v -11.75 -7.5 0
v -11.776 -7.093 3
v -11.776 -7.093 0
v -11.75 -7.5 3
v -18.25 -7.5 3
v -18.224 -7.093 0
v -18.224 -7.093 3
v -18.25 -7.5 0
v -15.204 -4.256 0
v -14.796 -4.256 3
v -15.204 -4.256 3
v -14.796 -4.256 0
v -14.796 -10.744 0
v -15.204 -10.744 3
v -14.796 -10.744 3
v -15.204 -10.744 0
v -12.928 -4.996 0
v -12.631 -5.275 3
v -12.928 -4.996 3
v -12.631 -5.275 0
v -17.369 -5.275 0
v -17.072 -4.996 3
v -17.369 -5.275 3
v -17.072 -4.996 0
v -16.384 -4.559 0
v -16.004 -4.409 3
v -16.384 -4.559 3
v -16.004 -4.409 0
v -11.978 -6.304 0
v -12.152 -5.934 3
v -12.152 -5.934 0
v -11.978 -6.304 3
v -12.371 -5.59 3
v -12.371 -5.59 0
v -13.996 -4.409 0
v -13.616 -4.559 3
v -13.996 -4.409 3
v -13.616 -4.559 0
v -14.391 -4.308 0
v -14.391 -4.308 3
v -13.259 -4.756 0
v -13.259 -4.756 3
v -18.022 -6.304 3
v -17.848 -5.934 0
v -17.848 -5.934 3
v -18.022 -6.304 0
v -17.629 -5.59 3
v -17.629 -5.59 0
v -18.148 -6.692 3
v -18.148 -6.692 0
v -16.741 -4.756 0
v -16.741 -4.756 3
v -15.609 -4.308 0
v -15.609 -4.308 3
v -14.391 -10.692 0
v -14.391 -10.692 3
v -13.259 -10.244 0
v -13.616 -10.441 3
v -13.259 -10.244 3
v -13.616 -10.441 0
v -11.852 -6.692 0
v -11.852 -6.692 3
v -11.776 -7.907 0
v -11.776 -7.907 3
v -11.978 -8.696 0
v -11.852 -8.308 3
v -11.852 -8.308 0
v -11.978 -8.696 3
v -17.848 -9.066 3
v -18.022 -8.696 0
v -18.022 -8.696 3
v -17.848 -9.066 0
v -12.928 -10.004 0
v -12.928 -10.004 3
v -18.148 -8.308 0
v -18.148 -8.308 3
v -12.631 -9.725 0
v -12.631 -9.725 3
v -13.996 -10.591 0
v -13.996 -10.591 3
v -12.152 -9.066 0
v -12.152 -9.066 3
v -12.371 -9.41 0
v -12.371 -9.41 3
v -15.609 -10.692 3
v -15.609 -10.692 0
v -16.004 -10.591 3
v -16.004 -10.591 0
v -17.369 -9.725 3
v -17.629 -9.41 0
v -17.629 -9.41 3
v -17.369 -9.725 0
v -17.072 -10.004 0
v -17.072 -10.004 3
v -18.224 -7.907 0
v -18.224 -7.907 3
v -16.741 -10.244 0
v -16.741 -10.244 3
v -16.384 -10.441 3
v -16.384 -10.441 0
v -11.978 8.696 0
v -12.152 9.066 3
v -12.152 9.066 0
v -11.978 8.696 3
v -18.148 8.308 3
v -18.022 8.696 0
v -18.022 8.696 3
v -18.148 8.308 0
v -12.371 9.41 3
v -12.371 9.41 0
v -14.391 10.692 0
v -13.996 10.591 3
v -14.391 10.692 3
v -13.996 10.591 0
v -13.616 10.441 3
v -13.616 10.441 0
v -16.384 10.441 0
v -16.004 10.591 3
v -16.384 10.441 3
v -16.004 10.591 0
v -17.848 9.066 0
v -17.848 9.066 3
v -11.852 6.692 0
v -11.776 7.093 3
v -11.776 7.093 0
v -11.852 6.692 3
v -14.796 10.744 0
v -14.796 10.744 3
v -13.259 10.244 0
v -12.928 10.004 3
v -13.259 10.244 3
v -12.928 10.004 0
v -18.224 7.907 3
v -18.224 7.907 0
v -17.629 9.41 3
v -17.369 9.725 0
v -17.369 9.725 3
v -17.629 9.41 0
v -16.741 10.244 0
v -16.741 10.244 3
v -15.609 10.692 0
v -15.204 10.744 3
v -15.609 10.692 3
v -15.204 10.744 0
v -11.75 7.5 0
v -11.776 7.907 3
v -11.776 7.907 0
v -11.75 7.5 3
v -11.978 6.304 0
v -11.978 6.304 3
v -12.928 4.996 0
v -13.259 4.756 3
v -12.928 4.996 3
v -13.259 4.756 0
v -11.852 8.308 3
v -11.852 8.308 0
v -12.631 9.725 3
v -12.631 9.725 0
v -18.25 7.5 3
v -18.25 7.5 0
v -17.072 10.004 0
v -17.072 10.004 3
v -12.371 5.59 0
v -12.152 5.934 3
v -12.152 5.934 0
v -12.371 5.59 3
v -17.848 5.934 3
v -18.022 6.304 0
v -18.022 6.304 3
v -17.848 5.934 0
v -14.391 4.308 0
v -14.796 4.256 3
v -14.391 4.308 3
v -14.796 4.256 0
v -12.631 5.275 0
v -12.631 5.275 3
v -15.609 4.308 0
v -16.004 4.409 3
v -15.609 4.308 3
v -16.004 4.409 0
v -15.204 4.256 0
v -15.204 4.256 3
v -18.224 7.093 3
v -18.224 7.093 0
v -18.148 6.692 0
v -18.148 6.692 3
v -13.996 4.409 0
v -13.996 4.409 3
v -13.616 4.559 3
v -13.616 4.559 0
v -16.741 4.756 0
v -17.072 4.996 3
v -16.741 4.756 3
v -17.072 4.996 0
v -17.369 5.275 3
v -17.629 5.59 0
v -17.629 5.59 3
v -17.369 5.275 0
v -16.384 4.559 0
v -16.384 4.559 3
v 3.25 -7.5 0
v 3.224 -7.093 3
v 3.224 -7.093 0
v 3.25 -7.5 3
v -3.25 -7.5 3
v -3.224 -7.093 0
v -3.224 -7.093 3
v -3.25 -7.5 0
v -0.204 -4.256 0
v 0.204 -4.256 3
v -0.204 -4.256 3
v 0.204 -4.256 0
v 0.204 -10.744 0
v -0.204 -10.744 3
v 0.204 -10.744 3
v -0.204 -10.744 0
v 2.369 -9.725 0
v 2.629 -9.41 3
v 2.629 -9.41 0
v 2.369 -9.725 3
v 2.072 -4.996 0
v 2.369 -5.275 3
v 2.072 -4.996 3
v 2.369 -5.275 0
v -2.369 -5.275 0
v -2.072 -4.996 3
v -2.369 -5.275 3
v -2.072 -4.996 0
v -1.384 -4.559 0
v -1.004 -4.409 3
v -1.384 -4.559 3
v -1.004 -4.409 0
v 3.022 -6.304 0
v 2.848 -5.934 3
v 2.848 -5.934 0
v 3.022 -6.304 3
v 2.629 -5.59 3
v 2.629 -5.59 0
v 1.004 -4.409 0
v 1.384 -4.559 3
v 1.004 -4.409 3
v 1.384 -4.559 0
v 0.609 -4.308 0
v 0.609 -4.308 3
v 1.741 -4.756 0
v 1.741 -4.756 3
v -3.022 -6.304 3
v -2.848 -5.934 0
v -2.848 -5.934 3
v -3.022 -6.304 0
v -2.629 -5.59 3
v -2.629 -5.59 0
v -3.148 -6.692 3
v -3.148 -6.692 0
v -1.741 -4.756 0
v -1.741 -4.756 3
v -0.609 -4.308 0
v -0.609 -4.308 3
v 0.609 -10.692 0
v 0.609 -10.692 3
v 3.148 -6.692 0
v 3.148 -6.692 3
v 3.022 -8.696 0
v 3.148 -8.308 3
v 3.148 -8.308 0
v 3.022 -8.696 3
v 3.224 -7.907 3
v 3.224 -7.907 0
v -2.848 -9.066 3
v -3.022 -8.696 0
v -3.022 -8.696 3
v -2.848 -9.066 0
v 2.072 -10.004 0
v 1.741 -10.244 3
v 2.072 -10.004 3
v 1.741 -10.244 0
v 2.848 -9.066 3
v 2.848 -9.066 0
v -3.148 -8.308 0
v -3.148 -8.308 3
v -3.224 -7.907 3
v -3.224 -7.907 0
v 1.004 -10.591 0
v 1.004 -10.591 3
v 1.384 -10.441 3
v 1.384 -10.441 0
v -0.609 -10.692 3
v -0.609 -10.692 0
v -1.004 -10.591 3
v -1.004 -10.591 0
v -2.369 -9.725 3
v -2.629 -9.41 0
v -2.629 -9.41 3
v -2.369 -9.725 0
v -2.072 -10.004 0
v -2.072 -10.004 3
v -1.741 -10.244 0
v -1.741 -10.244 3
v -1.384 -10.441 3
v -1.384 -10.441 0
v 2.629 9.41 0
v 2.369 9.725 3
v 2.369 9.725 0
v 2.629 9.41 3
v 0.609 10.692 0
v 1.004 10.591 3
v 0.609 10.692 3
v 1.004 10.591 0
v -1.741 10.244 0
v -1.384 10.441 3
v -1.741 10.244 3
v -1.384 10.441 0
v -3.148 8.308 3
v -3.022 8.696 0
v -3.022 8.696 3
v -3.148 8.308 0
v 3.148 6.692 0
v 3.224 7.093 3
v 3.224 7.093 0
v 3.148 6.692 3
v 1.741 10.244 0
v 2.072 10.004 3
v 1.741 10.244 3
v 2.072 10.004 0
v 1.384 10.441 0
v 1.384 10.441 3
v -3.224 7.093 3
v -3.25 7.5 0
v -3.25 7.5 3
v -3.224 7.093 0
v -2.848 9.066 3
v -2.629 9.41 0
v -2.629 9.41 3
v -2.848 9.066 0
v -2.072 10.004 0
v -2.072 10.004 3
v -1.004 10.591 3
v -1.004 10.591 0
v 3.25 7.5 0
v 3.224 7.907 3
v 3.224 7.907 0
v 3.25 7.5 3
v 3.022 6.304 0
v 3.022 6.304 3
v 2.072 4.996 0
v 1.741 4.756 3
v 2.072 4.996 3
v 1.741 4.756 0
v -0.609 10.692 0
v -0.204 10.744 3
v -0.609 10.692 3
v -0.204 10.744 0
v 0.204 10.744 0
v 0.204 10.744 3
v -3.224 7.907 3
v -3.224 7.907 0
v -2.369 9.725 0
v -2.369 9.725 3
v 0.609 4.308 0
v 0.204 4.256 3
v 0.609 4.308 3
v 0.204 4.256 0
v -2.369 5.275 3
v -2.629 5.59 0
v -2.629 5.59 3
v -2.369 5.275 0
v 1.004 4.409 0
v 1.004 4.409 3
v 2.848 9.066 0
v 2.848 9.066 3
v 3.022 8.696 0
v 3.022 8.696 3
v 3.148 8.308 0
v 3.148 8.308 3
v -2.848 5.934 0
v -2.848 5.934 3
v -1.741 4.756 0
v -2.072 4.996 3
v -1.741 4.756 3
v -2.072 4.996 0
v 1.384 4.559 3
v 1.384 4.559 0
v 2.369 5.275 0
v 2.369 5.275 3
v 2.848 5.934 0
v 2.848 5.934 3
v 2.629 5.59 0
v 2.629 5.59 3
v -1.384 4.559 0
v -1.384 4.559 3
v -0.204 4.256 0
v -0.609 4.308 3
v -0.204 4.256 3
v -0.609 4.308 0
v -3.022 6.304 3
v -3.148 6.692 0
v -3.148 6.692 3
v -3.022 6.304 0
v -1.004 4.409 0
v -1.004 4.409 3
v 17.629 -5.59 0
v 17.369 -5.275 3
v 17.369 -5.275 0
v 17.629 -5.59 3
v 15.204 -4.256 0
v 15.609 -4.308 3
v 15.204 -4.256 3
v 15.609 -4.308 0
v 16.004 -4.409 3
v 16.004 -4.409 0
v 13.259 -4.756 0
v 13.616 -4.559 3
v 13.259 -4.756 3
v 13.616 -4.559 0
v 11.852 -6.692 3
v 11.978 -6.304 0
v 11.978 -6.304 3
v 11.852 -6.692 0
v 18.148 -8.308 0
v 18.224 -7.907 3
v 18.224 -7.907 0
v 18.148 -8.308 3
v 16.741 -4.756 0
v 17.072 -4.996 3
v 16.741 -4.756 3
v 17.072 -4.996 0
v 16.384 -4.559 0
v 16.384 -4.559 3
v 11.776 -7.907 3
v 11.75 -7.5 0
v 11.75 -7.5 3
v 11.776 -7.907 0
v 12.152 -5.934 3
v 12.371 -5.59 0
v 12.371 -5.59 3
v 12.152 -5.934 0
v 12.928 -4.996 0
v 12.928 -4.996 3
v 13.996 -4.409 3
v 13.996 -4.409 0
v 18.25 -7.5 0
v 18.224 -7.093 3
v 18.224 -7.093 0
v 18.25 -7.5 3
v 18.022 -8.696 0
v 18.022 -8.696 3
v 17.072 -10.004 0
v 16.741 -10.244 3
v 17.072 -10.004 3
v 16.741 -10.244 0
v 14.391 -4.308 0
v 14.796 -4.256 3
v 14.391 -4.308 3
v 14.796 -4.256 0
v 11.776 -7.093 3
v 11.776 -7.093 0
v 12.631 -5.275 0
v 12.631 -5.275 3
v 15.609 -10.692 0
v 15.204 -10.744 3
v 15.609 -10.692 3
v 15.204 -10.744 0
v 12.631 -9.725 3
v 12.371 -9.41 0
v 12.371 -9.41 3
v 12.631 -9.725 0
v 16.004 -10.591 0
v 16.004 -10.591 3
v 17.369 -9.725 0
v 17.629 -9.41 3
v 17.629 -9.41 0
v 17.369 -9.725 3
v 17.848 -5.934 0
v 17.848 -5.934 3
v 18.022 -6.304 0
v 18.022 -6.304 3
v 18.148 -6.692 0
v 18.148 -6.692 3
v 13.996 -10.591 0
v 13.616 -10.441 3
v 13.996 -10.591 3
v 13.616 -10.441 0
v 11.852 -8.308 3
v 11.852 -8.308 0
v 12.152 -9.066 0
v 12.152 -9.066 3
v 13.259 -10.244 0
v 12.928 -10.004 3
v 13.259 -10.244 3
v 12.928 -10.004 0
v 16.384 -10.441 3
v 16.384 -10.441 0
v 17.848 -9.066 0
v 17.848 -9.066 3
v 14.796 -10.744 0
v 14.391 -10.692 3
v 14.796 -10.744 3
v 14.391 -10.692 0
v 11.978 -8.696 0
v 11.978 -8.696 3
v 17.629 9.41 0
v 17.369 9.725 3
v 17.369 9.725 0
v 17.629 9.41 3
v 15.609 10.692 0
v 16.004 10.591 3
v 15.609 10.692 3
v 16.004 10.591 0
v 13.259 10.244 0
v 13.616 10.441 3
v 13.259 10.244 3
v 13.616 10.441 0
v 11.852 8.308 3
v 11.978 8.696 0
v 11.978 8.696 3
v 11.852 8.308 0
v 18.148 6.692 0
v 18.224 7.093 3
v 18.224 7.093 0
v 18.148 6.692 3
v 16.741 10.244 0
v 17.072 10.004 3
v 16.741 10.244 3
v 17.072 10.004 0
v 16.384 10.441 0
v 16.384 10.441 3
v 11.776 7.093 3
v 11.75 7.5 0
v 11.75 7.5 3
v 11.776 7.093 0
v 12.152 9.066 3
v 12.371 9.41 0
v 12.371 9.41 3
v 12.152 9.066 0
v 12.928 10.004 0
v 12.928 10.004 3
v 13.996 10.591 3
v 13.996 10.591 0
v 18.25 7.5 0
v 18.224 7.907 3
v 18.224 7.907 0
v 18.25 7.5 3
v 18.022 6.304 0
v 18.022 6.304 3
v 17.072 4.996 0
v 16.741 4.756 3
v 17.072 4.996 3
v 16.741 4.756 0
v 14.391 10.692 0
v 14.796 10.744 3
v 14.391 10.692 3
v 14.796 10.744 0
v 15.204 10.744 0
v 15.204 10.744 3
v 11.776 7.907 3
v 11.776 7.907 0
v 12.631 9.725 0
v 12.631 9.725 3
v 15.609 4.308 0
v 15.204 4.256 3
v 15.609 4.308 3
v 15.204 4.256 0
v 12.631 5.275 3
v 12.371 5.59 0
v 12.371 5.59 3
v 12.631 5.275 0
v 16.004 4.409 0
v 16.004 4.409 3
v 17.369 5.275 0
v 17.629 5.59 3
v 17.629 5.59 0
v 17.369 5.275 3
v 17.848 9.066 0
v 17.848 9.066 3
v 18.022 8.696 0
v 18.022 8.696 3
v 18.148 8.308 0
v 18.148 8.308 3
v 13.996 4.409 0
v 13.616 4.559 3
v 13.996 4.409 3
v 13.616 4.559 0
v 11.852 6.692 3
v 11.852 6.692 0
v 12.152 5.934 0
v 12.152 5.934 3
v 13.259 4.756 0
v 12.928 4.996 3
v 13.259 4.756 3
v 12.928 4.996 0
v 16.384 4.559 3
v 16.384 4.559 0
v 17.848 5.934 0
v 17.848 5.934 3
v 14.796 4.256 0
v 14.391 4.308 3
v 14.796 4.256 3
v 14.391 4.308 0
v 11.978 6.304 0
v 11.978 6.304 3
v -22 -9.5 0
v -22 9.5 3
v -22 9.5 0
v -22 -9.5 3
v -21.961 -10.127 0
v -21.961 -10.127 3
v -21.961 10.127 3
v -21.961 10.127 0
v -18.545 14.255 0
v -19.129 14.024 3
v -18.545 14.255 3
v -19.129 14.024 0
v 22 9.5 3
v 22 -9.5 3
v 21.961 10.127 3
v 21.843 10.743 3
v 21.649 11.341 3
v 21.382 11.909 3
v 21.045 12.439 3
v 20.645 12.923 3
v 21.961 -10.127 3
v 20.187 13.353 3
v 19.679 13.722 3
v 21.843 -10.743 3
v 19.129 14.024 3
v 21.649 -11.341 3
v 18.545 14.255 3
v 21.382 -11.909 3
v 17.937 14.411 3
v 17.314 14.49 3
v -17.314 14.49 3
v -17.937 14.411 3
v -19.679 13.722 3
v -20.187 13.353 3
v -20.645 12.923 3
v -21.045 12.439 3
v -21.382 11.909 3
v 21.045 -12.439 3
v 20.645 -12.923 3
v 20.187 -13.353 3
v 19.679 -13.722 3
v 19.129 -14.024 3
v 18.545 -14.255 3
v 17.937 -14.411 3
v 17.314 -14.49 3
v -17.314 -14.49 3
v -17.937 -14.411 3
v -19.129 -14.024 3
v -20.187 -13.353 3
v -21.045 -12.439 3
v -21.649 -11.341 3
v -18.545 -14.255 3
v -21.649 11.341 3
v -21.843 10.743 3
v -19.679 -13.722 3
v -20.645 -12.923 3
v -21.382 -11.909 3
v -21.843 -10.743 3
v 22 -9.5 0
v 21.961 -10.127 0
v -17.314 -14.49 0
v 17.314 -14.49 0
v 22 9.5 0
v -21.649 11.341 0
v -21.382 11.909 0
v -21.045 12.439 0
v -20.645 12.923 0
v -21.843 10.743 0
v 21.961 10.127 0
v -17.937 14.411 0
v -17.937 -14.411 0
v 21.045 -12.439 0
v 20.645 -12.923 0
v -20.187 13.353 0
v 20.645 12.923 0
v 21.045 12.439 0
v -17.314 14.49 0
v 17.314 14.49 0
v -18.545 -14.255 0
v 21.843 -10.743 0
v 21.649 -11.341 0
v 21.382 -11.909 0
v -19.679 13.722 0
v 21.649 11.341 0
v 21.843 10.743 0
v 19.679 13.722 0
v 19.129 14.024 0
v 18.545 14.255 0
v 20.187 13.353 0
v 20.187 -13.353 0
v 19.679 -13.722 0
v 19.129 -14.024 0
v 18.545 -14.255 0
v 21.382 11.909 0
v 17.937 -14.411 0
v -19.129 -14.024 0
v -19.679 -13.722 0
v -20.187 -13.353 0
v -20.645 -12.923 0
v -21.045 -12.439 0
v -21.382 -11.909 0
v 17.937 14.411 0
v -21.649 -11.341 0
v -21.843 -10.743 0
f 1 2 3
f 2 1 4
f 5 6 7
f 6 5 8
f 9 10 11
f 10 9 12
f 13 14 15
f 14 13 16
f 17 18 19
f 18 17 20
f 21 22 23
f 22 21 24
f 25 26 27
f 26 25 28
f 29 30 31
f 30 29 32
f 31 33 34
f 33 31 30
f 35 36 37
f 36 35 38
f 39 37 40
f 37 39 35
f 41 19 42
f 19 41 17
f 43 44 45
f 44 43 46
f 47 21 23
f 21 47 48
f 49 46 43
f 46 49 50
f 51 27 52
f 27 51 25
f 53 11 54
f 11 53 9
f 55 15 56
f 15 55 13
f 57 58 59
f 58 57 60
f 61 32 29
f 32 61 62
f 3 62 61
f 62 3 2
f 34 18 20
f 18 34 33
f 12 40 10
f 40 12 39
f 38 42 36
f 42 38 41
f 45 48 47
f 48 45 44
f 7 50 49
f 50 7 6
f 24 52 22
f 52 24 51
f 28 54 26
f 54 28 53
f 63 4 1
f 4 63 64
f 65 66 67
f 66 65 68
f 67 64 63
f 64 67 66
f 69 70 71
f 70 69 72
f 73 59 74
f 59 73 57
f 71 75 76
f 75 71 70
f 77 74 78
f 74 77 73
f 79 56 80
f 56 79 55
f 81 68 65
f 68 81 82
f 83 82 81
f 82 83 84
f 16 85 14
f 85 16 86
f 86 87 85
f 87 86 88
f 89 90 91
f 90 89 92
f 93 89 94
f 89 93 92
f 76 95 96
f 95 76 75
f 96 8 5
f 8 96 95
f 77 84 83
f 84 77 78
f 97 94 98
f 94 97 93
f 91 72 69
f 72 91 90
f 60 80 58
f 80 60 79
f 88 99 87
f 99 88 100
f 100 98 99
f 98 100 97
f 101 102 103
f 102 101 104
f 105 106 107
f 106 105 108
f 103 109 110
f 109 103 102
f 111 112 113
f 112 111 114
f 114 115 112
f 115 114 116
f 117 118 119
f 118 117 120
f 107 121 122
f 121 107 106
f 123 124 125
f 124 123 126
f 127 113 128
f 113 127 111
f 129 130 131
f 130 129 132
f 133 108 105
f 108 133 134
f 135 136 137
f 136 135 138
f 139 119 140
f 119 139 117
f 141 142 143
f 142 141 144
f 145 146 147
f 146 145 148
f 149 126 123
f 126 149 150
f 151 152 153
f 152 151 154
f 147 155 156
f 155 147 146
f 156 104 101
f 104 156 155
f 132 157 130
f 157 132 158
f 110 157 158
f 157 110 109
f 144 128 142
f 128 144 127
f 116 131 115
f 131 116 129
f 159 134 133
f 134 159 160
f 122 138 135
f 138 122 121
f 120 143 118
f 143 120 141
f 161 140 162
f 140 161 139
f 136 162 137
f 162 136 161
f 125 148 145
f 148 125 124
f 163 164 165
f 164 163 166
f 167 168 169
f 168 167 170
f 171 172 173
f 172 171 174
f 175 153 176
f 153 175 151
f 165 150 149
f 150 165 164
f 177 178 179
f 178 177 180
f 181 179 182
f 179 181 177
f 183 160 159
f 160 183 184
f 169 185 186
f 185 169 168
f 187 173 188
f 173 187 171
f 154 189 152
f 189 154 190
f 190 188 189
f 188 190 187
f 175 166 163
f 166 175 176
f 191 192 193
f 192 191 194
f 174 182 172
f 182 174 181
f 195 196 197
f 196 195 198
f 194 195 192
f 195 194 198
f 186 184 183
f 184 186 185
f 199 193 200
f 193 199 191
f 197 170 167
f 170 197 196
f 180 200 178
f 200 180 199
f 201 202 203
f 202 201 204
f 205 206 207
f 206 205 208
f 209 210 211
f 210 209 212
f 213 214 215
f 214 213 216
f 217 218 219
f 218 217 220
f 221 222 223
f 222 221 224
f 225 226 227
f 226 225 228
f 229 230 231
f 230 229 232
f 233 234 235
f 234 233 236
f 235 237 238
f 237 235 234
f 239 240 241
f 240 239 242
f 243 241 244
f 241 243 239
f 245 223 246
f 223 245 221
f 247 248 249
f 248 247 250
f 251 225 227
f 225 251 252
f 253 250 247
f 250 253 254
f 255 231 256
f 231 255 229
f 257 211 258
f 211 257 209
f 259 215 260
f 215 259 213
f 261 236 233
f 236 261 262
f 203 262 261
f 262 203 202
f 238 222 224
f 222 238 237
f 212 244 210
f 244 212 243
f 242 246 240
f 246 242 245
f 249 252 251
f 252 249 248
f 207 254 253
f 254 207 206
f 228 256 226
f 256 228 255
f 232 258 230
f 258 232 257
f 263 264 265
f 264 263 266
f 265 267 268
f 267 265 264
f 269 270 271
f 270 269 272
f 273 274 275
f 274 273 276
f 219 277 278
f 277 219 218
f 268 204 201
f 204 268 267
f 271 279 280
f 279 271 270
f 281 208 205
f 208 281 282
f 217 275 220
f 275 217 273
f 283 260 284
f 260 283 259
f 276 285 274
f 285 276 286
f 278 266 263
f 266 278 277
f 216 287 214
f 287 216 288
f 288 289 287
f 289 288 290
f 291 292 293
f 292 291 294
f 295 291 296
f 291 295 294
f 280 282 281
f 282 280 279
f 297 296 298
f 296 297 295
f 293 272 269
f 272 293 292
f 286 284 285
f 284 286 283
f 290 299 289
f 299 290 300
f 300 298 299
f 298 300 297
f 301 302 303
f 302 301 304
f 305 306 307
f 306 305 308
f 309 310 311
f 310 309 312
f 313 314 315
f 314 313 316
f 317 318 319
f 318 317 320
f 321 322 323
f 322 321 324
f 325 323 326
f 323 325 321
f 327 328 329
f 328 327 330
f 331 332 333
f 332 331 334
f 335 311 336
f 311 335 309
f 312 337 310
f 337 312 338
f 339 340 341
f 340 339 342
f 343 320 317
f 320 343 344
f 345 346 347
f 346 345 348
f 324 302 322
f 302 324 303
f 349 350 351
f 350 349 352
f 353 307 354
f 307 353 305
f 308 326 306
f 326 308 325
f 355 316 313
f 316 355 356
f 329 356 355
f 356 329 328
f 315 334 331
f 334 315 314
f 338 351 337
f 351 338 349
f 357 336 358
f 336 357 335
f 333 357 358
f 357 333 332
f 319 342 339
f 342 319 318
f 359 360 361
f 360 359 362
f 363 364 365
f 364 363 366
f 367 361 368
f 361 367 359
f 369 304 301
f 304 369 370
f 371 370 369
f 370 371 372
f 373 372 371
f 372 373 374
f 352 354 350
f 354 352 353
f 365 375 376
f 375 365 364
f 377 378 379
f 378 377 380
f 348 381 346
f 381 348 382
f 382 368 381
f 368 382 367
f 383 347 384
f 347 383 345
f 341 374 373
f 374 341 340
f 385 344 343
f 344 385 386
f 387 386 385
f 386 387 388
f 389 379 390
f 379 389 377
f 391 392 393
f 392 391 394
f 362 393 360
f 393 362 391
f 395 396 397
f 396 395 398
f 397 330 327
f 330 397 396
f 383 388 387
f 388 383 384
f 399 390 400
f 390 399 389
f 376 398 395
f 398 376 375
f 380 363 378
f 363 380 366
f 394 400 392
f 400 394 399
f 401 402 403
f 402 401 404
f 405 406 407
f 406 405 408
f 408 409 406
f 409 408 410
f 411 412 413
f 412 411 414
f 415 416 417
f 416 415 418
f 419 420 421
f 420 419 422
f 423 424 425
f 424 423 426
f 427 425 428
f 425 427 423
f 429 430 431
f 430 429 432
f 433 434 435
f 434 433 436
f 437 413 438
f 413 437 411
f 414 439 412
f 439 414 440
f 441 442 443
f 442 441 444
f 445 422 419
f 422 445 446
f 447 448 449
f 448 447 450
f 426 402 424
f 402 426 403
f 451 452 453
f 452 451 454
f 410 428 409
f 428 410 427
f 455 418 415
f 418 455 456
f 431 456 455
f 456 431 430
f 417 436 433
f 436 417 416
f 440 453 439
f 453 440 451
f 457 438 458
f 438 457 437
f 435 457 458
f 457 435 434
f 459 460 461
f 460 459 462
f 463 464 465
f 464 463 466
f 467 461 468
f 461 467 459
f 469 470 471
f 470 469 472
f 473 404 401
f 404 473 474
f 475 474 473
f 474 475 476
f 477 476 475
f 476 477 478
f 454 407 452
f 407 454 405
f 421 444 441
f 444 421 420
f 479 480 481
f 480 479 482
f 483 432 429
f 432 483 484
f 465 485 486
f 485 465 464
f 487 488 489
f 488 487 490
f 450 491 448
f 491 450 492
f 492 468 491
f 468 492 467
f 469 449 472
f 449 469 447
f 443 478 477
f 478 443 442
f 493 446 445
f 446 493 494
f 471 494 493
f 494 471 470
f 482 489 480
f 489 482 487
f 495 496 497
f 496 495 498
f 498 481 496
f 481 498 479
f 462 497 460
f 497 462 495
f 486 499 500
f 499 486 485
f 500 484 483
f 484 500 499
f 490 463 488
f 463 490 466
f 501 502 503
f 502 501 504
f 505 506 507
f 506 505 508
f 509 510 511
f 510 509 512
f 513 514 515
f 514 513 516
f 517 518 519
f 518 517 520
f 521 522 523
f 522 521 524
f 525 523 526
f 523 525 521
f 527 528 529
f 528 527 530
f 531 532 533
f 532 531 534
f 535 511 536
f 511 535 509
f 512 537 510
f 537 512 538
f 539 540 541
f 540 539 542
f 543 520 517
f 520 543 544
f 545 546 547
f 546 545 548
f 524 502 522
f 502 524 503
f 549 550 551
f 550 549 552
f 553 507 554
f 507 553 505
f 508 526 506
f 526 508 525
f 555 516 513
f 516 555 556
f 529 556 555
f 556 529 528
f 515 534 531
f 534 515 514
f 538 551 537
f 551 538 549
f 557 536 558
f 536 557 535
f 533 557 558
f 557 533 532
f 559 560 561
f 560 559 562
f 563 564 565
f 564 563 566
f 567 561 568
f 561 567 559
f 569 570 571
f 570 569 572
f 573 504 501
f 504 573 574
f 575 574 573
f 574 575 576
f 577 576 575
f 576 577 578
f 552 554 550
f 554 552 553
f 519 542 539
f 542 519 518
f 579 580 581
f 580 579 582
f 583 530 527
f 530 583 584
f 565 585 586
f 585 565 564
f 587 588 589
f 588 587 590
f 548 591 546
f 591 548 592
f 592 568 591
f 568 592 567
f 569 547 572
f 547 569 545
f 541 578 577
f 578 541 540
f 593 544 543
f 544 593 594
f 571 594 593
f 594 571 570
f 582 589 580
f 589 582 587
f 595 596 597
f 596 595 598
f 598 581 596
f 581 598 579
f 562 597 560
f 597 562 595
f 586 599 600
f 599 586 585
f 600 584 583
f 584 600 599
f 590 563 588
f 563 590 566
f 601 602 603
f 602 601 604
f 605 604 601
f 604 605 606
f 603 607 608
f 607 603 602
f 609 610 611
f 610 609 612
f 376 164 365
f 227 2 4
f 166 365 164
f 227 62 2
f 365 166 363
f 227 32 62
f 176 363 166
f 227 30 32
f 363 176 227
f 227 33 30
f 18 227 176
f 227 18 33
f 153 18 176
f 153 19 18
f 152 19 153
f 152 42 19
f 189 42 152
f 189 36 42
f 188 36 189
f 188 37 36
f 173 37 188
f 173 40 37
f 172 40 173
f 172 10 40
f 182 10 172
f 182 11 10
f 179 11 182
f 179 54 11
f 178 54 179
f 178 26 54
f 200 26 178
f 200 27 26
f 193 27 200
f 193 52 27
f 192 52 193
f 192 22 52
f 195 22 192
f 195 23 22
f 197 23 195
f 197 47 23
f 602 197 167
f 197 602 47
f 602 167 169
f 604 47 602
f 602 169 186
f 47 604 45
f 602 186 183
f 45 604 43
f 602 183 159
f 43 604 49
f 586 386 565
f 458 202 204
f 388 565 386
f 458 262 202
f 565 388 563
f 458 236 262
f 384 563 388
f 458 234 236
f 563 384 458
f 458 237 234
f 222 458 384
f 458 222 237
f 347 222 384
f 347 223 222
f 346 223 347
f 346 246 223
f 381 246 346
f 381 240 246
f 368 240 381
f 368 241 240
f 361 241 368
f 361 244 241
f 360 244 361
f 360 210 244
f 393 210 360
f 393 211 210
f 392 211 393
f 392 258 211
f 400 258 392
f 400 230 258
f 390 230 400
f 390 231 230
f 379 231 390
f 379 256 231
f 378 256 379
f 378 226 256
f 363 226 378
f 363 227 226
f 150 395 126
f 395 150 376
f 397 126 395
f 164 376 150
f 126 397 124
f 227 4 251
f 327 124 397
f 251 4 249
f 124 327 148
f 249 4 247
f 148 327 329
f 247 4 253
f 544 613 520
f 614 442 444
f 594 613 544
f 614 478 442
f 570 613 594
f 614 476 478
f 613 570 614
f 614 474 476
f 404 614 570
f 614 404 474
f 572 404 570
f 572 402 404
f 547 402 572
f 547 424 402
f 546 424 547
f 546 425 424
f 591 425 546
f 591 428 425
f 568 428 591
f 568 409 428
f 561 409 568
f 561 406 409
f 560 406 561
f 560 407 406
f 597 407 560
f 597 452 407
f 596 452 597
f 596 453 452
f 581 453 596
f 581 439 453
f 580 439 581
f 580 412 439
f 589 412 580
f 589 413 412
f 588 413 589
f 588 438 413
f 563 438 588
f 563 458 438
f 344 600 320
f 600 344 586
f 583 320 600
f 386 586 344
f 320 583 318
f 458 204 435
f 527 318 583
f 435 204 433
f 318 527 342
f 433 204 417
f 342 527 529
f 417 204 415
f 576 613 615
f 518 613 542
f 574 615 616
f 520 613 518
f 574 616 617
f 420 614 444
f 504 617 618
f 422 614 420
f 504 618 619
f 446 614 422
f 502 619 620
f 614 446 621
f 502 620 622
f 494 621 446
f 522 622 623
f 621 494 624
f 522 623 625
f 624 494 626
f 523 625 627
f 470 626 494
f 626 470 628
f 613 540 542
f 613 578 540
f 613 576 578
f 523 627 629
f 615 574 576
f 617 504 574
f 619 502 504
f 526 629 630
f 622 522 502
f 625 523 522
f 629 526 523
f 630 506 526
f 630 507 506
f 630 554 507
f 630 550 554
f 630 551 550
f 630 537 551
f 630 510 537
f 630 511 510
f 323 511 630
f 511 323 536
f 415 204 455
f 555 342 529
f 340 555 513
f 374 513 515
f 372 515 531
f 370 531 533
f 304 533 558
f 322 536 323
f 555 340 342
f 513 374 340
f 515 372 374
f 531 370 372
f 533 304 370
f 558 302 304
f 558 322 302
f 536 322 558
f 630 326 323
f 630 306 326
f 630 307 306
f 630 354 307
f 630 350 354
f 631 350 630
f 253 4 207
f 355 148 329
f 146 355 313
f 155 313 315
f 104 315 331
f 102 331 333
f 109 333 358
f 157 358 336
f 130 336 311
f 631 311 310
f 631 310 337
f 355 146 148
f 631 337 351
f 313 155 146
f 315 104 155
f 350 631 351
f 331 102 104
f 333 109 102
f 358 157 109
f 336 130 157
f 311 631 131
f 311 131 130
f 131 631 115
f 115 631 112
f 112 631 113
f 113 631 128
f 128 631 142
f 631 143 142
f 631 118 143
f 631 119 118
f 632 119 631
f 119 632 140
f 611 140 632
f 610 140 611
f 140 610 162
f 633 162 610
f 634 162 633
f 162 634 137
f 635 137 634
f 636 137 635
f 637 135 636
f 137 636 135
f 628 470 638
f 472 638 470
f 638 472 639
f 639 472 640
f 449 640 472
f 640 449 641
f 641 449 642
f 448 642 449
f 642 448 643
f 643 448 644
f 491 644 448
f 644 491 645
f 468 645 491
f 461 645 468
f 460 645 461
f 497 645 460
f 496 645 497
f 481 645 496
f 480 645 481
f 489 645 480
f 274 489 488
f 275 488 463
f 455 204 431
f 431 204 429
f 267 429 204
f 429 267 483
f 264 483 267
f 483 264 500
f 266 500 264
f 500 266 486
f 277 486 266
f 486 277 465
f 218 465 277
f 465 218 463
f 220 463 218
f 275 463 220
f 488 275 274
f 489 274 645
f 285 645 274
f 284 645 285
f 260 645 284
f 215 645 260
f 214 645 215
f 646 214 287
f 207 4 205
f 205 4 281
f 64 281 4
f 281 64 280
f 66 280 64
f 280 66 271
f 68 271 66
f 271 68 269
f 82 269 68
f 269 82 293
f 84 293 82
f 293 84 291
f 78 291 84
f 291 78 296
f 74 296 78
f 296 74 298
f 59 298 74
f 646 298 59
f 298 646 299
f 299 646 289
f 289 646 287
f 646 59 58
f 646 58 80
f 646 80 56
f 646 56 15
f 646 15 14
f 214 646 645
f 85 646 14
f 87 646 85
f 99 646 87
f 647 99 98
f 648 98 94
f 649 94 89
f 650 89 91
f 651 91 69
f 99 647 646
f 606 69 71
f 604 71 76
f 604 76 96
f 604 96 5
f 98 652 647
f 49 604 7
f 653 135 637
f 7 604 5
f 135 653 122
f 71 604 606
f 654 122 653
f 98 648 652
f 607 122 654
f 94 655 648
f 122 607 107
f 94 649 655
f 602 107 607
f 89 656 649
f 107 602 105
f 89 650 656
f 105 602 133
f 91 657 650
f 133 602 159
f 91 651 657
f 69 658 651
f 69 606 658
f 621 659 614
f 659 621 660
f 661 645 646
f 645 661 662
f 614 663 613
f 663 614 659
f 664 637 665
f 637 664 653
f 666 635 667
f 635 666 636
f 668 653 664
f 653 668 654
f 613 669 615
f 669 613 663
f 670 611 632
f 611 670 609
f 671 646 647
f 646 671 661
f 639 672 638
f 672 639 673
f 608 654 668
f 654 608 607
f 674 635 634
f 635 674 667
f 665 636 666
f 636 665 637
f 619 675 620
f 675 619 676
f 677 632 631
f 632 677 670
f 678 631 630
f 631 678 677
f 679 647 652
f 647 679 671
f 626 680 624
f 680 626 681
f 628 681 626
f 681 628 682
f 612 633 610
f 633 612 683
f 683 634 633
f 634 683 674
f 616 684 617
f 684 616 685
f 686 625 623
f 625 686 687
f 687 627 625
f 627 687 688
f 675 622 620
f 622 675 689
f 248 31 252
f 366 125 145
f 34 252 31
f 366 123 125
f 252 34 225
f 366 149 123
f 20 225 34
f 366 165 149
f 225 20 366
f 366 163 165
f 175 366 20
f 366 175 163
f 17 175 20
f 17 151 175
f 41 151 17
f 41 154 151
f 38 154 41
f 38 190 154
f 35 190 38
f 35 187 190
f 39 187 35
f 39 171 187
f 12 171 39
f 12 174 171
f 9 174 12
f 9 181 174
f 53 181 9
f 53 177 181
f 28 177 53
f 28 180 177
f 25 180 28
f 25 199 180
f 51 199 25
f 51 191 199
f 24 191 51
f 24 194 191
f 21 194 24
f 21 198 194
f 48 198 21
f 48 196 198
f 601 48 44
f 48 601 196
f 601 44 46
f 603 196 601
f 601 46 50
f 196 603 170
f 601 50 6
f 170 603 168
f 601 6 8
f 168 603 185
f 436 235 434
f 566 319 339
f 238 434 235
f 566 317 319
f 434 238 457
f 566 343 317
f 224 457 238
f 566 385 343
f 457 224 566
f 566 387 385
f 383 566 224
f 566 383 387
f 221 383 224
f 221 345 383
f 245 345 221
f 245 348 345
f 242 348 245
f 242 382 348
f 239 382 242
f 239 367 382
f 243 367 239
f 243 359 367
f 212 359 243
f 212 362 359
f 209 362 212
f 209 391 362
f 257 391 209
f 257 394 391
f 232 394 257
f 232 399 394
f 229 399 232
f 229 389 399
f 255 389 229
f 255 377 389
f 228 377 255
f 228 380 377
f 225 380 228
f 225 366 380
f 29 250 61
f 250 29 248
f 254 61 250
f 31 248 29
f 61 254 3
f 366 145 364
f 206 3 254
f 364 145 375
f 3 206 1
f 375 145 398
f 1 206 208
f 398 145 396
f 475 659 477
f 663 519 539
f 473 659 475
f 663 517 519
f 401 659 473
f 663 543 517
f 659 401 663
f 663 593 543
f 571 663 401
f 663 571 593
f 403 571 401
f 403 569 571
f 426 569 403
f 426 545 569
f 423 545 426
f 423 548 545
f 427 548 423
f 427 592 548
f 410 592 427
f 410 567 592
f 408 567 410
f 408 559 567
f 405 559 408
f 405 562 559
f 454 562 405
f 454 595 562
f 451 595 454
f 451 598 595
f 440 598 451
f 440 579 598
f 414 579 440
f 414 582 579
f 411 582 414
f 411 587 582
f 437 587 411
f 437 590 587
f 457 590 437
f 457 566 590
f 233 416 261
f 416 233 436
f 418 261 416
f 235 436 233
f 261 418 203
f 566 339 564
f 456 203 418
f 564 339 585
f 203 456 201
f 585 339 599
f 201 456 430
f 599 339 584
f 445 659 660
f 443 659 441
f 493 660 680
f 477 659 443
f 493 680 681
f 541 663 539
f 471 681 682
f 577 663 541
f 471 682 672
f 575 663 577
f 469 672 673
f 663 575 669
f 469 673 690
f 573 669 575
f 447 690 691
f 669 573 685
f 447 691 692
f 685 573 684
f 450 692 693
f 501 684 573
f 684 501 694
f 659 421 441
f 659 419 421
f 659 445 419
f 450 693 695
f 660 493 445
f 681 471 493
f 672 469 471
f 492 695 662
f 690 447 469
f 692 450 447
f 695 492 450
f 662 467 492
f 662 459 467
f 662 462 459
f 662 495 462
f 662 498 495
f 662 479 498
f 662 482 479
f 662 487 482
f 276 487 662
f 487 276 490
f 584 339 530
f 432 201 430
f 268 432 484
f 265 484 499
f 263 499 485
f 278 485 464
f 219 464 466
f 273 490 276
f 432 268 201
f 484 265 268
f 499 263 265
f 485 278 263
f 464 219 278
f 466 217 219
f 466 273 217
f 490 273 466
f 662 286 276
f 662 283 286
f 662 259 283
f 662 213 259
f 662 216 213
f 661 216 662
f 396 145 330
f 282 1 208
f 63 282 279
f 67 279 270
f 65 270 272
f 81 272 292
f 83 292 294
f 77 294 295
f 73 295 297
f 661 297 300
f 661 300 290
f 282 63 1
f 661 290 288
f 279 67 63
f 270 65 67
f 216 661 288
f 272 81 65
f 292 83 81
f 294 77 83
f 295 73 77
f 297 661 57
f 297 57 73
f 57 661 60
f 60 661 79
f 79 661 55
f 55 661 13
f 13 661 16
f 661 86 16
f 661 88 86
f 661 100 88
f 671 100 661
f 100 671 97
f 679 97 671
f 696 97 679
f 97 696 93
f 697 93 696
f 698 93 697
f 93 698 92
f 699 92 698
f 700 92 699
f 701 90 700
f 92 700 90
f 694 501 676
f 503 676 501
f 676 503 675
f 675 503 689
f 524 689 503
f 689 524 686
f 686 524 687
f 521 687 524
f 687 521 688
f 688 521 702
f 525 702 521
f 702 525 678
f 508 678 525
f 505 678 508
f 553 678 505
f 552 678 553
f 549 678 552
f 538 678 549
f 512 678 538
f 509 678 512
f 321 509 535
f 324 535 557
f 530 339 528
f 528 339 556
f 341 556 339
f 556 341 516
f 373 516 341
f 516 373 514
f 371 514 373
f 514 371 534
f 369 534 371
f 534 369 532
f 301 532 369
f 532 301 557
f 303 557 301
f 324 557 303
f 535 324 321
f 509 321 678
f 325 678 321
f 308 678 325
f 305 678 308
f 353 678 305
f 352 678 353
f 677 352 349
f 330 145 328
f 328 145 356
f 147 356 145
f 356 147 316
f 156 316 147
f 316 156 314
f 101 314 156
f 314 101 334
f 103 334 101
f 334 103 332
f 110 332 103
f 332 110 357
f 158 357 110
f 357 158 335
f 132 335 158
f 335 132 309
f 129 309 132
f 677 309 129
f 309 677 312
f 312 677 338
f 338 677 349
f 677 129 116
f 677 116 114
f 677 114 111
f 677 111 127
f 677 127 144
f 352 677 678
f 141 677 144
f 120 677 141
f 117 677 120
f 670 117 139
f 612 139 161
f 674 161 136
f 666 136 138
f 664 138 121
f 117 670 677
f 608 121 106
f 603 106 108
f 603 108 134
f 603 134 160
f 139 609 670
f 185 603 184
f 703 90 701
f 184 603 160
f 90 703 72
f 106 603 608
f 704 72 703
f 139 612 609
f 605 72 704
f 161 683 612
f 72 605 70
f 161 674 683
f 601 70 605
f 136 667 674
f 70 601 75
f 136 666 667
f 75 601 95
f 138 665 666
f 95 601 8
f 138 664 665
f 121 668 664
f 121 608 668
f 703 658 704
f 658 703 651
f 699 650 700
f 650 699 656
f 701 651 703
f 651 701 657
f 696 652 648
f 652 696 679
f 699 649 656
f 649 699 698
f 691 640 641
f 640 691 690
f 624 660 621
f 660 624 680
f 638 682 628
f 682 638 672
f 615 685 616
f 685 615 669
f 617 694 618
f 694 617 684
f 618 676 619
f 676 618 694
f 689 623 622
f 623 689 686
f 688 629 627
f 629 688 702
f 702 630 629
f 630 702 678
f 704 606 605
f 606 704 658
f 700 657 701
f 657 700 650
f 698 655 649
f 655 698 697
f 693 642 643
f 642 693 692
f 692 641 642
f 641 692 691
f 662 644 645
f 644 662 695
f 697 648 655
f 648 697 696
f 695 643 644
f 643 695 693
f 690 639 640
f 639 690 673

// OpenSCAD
$fn = 50;


difference() {
	union() {
		hull() {
			translate(v = [-17.0000000000, 9.5000000000, 0]) {
				cylinder(h = 3, r = 5);
			}
			translate(v = [17.0000000000, 9.5000000000, 0]) {
				cylinder(h = 3, r = 5);
			}
			translate(v = [-17.0000000000, -9.5000000000, 0]) {
				cylinder(h = 3, r = 5);
			}
			translate(v = [17.0000000000, -9.5000000000, 0]) {
				cylinder(h = 3, r = 5);
			}
		}
	}
	union() {
		translate(v = [-15.0000000000, -7.5000000000, -100.0000000000]) {
			cylinder(h = 200, r = 3.2500000000);
		}
		translate(v = [-15.0000000000, 7.5000000000, -100.0000000000]) {
			cylinder(h = 200, r = 3.2500000000);
		}
		translate(v = [0.0000000000, -7.5000000000, -100.0000000000]) {
			cylinder(h = 200, r = 3.2500000000);
		}
		translate(v = [0.0000000000, 7.5000000000, -100.0000000000]) {
			cylinder(h = 200, r = 3.2500000000);
		}
		translate(v = [15.0000000000, -7.5000000000, -100.0000000000]) {
			cylinder(h = 200, r = 3.2500000000);
		}
		translate(v = [15.0000000000, 7.5000000000, -100.0000000000]) {
			cylinder(h = 200, r = 3.2500000000);
		}
	}
}
